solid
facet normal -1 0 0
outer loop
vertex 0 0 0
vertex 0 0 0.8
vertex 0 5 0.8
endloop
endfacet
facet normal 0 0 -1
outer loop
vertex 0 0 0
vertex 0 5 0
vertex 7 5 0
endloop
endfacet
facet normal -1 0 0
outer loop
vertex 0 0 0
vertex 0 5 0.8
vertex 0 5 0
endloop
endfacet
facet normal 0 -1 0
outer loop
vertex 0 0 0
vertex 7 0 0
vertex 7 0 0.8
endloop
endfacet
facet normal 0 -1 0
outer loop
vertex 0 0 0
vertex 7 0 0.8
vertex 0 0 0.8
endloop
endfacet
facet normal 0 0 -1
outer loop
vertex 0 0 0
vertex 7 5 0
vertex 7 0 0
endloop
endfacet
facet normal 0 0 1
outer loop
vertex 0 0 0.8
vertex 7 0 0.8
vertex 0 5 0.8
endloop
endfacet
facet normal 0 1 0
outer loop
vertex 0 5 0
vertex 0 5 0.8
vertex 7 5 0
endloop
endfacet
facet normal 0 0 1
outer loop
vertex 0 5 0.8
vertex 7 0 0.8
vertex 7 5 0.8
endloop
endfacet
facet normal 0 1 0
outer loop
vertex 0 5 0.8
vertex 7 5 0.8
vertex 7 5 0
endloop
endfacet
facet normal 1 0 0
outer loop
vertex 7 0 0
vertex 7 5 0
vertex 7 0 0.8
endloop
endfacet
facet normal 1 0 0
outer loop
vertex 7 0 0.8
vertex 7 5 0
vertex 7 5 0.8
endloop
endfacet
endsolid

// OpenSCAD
/* Warning, this is a very basic generator with a lot of approximation 
input data : [WDFN, UUX, 7x5x0.8mm, 19, , A, C04-00295A]
generated by com.zoubworld.electronics.cad.model3d.Basic
Date : Sun Feb 15 10:50:48 CET 2026
*/

//body
color("black")
translate([0,0,0])
cube([7.0,5.0,0.8], center=false);
